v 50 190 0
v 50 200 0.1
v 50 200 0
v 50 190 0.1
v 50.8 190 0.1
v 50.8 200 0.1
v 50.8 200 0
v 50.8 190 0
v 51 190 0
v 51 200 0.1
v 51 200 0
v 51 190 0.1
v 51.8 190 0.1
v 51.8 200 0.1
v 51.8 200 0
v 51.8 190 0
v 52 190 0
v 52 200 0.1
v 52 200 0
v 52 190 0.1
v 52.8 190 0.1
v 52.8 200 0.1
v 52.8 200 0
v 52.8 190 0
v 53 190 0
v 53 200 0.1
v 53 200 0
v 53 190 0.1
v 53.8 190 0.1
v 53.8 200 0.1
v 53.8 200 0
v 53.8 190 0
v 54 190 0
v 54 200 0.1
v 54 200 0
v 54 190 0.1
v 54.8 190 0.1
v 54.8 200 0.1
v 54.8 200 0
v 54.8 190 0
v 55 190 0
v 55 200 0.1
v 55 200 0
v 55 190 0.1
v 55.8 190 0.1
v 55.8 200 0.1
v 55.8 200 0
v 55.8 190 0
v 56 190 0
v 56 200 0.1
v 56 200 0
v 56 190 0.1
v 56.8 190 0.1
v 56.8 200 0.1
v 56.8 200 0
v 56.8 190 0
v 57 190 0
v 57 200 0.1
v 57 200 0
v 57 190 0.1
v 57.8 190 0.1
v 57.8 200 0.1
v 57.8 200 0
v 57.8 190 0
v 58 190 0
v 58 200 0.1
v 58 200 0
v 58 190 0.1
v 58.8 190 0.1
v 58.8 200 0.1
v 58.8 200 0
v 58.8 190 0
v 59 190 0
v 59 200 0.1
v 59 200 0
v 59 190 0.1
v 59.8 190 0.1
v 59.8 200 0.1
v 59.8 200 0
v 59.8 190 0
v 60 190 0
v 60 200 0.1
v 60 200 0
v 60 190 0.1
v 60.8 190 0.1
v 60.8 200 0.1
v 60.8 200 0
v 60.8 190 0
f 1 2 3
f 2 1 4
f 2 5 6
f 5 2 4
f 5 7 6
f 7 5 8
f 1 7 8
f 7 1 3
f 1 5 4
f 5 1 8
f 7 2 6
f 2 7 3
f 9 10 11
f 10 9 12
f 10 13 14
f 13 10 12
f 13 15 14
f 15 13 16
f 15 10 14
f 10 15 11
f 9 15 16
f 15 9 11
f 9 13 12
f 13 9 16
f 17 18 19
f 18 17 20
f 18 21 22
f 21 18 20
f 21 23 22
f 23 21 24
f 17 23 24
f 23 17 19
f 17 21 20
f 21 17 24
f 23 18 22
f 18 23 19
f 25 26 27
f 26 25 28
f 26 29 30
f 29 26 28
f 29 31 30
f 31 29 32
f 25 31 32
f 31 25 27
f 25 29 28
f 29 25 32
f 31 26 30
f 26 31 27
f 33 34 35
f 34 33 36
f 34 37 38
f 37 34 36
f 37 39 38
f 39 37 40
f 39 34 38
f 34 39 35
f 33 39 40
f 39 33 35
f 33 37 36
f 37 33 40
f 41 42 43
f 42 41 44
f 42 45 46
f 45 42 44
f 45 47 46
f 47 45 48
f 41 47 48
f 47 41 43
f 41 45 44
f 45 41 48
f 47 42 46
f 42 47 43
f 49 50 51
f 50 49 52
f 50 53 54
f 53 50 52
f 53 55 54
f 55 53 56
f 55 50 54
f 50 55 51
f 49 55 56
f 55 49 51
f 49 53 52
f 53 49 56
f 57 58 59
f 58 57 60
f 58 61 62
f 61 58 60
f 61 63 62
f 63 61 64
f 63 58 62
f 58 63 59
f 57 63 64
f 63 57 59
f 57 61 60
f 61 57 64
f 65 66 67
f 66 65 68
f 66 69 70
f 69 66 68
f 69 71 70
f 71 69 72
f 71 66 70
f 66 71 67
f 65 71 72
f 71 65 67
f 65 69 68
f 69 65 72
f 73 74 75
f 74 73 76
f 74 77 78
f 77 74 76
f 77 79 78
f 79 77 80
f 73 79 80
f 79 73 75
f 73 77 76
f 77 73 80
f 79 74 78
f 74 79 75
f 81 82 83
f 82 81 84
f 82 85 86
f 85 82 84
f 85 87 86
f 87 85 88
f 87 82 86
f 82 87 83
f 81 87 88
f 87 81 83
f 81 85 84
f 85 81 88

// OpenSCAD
translate([10+40,10+180,0])
        for (i = [0 : 10]){
            translate([i,0,0])
                cube(size = [0.8,10,0.1]);
    }
